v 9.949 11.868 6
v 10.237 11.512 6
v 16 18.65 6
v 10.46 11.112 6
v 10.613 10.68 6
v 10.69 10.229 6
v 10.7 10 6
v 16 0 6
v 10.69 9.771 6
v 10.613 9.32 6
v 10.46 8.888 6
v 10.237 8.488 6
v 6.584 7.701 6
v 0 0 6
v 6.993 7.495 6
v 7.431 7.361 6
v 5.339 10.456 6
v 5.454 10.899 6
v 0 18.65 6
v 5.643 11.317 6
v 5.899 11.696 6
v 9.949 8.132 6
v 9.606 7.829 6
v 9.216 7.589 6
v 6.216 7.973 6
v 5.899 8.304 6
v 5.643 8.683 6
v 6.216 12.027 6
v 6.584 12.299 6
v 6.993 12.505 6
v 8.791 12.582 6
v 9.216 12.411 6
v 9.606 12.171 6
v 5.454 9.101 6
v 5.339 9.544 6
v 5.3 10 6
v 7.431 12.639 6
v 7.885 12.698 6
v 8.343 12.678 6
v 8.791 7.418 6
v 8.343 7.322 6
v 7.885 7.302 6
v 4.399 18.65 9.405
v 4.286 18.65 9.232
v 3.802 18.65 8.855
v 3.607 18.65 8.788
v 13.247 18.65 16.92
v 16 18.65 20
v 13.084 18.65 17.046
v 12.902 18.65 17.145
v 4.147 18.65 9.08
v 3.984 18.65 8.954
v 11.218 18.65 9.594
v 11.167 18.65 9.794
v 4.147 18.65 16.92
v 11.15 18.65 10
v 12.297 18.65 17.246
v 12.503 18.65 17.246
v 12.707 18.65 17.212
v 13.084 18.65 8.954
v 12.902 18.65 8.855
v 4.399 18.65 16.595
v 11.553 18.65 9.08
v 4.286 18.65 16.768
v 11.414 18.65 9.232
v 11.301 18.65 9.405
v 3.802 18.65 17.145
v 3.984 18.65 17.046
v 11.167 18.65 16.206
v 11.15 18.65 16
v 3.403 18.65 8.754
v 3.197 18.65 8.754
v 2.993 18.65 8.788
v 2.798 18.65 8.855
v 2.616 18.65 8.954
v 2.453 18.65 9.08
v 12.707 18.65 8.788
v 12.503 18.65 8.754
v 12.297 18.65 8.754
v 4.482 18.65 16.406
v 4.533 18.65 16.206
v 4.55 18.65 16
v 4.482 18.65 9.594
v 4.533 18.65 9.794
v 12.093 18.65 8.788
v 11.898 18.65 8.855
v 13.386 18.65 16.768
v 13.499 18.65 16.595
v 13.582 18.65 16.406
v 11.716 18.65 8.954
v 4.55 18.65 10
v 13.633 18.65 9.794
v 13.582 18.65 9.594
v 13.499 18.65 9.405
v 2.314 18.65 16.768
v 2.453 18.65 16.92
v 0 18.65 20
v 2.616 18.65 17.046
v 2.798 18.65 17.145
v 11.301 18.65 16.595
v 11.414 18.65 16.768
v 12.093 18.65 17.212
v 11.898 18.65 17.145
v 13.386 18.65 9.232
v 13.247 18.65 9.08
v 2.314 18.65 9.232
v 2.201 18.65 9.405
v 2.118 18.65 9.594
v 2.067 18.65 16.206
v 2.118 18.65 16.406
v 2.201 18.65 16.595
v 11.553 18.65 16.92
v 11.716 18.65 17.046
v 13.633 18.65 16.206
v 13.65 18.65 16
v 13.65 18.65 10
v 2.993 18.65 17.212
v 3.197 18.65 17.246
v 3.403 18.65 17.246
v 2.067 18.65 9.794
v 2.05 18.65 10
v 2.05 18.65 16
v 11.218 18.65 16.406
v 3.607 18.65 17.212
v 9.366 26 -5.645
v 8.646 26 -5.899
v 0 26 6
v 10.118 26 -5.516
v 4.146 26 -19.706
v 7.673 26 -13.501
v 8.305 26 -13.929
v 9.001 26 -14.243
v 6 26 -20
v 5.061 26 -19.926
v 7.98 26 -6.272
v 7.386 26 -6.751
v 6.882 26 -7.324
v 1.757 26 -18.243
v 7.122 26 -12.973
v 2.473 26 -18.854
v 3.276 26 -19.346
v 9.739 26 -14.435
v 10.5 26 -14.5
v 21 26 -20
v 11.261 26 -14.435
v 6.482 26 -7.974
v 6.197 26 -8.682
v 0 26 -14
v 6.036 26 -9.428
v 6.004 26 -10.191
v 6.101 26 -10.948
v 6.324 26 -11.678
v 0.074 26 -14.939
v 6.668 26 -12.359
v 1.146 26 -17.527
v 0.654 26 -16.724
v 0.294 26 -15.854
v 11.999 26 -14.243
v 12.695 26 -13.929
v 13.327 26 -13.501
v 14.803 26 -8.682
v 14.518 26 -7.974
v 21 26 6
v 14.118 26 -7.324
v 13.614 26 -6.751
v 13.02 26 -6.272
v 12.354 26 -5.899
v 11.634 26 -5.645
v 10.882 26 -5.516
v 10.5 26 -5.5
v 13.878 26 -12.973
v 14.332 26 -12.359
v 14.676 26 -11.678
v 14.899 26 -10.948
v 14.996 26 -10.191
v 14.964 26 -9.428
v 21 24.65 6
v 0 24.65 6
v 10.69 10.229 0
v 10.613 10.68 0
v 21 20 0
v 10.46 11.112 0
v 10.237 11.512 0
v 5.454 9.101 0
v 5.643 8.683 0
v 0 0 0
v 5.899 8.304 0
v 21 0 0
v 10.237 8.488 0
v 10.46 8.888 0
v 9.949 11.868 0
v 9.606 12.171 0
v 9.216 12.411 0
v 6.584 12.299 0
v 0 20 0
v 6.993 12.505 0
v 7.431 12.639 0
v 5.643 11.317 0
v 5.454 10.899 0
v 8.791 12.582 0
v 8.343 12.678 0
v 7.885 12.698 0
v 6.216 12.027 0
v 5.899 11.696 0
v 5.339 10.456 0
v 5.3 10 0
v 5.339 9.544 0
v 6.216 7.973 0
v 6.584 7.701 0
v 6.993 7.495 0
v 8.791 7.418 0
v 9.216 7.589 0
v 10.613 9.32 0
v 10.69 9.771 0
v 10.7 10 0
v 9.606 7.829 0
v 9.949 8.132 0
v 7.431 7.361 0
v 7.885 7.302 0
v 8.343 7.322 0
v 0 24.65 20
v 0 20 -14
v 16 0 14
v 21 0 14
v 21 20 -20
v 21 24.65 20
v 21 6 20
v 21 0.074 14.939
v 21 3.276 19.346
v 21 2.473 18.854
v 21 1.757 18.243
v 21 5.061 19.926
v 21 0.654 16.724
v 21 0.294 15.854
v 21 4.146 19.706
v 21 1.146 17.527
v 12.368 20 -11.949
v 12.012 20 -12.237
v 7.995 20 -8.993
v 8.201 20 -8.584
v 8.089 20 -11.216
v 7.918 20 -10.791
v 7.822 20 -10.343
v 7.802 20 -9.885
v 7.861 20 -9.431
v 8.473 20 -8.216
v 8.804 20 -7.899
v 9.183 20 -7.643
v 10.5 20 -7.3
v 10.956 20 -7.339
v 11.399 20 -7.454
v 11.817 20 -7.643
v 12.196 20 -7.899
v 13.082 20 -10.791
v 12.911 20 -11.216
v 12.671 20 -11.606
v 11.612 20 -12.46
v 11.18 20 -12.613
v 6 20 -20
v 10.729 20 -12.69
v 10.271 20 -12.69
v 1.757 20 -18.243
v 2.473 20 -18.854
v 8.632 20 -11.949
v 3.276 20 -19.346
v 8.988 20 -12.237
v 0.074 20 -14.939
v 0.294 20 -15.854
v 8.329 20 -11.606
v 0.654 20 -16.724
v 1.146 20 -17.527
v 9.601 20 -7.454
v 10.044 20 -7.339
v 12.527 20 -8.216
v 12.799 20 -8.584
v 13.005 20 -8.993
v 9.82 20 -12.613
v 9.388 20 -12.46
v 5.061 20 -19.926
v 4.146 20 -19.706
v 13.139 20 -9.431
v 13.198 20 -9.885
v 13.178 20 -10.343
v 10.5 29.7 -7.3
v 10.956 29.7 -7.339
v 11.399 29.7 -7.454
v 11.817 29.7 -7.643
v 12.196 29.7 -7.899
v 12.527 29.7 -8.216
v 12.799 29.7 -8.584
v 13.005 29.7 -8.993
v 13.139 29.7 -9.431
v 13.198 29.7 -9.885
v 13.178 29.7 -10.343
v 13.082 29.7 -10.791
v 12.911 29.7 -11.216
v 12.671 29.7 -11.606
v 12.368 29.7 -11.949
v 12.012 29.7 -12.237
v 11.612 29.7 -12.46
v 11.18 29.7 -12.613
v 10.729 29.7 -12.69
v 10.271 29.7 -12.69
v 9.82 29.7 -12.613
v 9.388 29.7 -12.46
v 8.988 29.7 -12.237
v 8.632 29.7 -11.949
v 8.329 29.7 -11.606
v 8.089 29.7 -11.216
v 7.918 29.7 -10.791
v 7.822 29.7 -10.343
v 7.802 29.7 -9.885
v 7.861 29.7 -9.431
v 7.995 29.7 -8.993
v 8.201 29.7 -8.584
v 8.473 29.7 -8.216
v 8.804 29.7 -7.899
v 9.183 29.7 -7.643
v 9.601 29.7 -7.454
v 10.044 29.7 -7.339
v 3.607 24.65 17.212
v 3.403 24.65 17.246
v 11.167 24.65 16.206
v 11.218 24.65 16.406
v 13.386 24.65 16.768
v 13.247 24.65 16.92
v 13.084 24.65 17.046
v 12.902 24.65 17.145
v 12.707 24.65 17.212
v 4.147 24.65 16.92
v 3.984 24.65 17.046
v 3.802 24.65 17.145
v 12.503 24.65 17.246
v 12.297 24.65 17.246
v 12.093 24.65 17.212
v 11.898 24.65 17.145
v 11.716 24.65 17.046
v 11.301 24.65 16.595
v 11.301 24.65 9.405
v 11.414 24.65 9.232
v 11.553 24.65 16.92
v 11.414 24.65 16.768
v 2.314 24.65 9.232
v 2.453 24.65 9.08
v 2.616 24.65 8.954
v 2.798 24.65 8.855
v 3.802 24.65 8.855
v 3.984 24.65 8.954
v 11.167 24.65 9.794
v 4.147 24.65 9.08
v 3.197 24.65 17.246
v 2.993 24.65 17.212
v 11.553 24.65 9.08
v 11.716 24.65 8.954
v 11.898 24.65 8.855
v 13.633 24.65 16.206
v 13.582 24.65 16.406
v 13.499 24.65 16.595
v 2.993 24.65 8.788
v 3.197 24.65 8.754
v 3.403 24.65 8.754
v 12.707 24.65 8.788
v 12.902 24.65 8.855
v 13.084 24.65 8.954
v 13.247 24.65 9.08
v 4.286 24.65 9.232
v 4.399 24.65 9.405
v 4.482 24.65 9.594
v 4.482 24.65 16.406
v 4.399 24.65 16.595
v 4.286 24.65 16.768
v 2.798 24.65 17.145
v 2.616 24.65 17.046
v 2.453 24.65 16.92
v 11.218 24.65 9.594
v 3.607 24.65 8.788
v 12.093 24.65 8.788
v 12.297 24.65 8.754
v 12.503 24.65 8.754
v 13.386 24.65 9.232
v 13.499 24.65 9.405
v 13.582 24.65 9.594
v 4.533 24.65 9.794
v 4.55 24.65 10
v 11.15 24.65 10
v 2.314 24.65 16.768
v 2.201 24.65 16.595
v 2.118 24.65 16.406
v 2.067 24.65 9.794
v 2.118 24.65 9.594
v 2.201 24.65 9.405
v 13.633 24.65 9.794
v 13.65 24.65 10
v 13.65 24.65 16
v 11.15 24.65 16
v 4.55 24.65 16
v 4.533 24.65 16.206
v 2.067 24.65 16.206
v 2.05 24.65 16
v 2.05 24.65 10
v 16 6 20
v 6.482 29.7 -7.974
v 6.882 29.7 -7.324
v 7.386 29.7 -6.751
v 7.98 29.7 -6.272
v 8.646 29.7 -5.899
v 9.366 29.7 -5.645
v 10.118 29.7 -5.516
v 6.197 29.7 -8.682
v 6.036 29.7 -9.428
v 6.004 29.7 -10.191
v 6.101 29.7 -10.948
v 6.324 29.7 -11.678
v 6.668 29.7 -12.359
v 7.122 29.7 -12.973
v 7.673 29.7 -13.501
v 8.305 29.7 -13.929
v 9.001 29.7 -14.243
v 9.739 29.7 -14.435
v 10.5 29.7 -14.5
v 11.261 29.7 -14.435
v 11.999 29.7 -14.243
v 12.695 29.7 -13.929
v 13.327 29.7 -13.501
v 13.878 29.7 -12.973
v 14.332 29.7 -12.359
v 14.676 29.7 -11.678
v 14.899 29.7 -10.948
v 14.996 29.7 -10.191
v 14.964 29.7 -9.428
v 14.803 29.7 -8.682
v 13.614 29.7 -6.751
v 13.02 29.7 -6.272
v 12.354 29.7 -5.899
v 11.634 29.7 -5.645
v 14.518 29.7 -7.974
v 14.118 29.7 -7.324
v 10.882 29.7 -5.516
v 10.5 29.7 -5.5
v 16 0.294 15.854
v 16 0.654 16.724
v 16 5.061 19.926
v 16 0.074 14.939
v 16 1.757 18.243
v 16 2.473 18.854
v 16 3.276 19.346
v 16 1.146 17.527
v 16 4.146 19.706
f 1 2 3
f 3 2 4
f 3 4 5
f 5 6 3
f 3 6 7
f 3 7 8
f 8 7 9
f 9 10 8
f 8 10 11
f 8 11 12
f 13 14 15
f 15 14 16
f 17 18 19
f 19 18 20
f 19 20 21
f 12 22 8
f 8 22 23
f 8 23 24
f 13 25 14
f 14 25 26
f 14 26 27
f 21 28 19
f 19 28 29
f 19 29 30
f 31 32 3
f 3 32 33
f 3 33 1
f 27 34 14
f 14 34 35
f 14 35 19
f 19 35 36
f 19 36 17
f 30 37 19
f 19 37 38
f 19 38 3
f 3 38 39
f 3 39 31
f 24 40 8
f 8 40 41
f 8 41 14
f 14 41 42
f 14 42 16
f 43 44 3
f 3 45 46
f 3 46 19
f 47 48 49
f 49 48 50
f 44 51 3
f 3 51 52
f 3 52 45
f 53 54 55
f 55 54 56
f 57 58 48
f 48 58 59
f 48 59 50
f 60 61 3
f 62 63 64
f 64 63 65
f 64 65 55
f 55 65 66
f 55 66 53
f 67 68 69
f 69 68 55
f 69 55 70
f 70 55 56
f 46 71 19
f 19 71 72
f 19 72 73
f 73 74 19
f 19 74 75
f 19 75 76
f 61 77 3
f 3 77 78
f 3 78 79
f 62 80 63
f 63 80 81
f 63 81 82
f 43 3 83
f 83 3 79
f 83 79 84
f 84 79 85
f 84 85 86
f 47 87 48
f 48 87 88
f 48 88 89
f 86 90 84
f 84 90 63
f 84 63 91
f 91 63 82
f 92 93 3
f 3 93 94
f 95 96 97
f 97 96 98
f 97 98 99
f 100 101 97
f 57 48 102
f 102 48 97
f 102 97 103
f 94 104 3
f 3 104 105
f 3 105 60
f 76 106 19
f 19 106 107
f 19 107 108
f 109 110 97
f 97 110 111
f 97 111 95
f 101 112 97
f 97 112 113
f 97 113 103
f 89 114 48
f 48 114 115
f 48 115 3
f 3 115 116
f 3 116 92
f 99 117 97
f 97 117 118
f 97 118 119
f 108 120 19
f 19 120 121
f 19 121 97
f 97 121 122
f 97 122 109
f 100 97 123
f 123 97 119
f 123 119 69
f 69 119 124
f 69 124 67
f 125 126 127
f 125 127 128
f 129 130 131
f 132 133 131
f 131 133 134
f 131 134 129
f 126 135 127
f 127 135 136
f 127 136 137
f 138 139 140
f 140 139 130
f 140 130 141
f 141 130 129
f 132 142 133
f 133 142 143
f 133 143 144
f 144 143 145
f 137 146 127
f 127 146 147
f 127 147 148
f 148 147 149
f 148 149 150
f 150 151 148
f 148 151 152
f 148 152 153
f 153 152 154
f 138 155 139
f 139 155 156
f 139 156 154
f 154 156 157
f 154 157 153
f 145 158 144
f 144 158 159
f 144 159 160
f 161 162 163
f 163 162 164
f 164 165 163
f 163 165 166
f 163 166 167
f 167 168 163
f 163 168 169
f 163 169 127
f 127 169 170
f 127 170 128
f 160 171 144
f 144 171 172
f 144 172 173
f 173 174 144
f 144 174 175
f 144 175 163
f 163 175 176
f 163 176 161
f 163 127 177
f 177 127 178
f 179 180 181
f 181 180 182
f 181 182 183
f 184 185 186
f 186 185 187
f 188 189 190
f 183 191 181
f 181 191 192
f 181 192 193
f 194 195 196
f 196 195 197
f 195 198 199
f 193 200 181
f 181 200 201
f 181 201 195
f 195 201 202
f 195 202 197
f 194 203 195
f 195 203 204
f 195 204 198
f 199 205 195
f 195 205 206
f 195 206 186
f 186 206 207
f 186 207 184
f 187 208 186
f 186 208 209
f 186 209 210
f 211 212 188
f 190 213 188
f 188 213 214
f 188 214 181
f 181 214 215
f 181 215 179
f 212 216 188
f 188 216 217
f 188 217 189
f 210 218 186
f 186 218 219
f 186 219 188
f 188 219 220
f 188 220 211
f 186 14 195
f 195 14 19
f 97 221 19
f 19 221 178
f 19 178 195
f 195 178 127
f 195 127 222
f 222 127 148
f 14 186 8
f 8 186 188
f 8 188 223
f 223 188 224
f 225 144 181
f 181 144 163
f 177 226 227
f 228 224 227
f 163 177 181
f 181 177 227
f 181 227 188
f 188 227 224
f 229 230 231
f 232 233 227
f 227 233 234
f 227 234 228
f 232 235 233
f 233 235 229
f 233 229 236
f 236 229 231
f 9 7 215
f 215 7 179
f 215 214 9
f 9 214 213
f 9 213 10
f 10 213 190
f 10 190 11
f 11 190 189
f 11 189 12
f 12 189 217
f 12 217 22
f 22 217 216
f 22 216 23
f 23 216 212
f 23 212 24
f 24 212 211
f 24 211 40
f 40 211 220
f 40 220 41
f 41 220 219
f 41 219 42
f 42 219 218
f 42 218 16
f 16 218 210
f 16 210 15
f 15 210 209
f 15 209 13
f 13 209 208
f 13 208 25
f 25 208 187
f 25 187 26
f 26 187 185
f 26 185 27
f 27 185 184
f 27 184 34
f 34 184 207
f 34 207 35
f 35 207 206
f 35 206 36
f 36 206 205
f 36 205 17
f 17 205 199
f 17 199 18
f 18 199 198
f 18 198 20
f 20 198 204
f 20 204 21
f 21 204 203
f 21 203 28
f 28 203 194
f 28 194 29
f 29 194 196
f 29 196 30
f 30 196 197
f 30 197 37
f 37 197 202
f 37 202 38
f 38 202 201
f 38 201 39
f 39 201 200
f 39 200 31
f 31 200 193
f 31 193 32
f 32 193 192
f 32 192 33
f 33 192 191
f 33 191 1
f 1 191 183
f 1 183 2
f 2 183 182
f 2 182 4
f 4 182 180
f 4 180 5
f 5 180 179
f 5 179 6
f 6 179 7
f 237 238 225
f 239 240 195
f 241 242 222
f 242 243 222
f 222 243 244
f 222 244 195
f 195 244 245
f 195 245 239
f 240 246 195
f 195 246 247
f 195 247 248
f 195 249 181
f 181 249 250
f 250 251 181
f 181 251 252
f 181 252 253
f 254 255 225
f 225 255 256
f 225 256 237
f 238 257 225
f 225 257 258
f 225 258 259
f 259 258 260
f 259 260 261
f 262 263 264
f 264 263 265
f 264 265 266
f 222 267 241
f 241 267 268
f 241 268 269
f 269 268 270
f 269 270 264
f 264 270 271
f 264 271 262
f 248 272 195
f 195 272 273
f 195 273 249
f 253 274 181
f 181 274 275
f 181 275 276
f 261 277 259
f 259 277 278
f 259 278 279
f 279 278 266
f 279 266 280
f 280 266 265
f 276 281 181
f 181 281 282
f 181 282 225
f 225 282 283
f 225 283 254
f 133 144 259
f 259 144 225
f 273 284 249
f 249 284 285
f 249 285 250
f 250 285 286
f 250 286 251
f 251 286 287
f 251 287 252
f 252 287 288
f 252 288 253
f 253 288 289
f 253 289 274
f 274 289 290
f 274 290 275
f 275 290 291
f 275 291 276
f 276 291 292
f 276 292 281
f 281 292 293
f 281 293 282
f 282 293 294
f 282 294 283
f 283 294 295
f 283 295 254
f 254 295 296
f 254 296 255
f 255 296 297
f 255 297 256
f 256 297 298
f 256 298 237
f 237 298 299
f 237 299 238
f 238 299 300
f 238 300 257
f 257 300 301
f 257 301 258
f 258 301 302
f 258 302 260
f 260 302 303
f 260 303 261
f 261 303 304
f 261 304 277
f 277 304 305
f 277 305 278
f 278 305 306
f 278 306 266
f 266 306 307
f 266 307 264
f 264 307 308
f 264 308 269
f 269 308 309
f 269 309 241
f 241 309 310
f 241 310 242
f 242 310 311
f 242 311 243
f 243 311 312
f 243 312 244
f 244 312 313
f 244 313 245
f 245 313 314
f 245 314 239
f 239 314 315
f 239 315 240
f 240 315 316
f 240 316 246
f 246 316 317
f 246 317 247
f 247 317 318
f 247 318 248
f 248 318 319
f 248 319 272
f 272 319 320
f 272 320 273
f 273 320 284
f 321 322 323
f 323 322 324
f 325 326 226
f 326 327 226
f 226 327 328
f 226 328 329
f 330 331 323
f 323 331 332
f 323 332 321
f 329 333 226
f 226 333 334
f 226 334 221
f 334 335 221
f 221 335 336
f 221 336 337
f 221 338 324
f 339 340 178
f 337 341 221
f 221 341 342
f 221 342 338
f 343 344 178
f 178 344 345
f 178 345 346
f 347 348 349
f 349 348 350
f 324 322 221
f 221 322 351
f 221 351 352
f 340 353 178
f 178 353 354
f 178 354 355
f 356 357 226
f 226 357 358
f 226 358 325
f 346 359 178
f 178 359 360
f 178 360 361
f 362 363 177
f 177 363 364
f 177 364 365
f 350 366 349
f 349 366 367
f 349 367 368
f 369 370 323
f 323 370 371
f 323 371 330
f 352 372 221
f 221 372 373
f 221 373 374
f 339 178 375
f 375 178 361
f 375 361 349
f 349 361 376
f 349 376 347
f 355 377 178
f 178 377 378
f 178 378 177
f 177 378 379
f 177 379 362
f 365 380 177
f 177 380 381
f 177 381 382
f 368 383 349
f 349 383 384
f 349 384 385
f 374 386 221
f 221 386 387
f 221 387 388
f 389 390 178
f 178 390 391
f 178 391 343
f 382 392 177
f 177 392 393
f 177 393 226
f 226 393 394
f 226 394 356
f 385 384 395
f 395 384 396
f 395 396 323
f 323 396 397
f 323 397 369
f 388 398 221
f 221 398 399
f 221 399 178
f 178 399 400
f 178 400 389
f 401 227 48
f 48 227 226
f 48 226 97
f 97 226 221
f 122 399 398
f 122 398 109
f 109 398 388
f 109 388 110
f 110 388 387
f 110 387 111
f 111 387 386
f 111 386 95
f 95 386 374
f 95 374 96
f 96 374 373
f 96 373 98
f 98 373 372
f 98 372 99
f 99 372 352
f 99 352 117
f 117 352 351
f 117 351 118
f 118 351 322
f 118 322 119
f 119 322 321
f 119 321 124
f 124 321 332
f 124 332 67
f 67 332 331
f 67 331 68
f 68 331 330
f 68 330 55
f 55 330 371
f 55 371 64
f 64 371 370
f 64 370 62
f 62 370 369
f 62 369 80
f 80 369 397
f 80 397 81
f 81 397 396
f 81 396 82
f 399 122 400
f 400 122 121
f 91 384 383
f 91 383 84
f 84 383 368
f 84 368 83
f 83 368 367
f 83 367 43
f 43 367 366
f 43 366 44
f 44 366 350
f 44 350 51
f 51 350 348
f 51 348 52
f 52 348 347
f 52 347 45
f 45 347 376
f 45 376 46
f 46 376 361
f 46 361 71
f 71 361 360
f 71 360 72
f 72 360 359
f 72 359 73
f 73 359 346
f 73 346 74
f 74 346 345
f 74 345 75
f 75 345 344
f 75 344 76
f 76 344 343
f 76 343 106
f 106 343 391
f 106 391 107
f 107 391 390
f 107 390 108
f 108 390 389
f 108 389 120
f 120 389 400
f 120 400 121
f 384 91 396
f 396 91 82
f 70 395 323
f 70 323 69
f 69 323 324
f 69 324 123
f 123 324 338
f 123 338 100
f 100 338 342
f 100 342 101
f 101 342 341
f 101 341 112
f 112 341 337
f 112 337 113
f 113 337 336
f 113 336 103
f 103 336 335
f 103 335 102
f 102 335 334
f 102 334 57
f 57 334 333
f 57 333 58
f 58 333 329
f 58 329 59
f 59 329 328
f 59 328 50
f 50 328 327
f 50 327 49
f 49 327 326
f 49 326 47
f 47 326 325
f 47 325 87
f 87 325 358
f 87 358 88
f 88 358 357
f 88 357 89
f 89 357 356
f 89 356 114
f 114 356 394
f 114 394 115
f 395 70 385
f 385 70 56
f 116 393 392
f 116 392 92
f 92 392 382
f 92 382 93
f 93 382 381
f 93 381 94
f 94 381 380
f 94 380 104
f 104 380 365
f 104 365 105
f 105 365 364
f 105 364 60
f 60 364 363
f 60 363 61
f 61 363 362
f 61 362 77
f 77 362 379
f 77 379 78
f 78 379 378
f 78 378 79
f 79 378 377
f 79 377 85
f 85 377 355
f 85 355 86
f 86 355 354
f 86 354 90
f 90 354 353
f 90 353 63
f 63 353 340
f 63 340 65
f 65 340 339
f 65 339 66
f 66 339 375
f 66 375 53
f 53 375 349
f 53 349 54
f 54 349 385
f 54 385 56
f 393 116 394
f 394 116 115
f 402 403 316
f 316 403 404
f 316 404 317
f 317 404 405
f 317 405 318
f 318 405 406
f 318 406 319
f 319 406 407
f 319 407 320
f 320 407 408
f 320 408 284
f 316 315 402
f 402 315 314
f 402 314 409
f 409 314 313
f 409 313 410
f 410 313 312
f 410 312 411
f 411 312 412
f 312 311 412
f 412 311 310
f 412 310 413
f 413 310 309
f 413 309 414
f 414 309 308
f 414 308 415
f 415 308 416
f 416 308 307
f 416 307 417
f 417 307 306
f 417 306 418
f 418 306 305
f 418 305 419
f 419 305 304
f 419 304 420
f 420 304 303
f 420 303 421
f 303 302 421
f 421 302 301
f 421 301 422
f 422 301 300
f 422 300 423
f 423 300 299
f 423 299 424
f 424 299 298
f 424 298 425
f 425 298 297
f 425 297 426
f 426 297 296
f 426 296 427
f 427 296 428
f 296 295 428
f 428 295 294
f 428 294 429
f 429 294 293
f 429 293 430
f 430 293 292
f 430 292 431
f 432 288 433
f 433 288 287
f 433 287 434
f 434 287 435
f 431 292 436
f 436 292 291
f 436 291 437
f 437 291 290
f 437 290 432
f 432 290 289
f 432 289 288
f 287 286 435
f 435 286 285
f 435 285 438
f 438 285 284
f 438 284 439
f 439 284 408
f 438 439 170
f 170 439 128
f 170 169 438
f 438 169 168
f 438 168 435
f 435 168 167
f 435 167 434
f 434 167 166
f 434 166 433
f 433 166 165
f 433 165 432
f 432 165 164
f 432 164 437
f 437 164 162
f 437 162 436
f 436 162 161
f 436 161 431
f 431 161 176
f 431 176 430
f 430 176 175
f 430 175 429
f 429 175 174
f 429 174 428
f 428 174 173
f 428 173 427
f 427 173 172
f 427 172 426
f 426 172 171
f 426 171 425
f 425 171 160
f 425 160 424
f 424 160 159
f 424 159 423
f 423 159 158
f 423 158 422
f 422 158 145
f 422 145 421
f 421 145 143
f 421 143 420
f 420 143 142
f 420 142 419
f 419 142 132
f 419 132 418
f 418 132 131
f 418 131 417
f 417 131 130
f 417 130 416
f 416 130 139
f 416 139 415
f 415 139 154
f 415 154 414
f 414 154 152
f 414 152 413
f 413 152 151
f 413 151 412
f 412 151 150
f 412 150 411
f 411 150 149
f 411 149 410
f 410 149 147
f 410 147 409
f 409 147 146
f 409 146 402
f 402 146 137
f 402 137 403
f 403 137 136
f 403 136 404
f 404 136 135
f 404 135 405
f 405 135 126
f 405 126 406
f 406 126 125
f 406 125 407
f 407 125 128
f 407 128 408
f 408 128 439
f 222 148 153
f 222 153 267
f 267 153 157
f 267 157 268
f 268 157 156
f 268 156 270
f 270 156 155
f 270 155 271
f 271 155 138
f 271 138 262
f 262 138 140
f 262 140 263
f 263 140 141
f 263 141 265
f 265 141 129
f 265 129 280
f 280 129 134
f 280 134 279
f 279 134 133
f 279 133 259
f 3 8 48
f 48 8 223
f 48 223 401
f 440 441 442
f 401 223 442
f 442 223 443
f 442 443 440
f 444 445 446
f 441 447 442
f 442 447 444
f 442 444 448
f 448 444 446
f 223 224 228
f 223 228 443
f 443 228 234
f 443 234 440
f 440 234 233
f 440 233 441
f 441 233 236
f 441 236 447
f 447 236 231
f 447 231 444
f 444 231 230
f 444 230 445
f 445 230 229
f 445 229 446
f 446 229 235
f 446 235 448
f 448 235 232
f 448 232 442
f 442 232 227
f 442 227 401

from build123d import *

# Parameters (mm, degrees)
SZKIC1_W                    = 21
SZKIC1_H                    = 6
SZKIC1_H_2                  = 20
SZKIC1_R                    = 2.7
DODANIE_WYCI_GNI_CIE1_DEPTH = 6
SZKIC2_W                    = 21
SZKIC2_H                    = 6
DODANIE_WYCI_GNI_CIE2_DEPTH = 20
SZKIC3_R                    = 2.7
WYTNIJ_WYCI_GNI_CIE1_DEPTH  = 9
SZKIC4_W                    = 21
SZKIC4_H                    = 6
DODANIE_WYCI_GNI_CIE3_DEPTH = 14
WYTNIJ_WYCI_GNI_CIE2_DEPTH  = 40.05
SZKIC6_R                    = 4.5
SZKIC6_R_2                  = 2.7
DODANIE_WYCI_GNI_CIE5_DEPTH = 3.7
ZAOKR_GLENIE2_R             = 6
SZKIC7_W                    = 5
SZKIC7_H                    = 18.65
DODANIE_WYCI_GNI_CIE6_DEPTH = 14
ZAOKR_GLENIE3_R             = 6


with BuildPart() as part:
    # Szkic1 → Dodanie-wyciągnięcie1 (new body)
    with BuildSketch(Plane.XY):
        with Locations((10.5, 23)):
            Rectangle(SZKIC1_W, SZKIC1_H)
        with Locations((10.5, 10)):
            Rectangle(SZKIC1_W, SZKIC1_H_2)
        with Locations((8, 10)):
            Circle(SZKIC1_R, mode=Mode.SUBTRACT)
    extrude(amount=DODANIE_WYCI_GNI_CIE1_DEPTH)

    # Szkic2 → Dodanie-wyciągnięcie2 (add)
    with BuildSketch(Plane(origin=(0, 0, 0), x_dir=(-1, 0, 0), z_dir=(0, 0, -1))):
        with Locations((-10.5, 23)):
            Rectangle(SZKIC2_W, SZKIC2_H)
    extrude(amount=DODANIE_WYCI_GNI_CIE2_DEPTH)

    # Szkic3 → Wytnij-wyciągnięcie1 (cut)
    with BuildSketch(Plane(origin=(0, 26, 0), x_dir=(1, 0, 0), z_dir=(0, 1, 0))):
        with Locations((10.5, 10)):
            Circle(SZKIC3_R)
    extrude(amount=-WYTNIJ_WYCI_GNI_CIE1_DEPTH, mode=Mode.SUBTRACT)

    # Szkic4 → Dodanie-wyciągnięcie3 (add)
    with BuildSketch(Plane.XY.offset(6)):
        with Locations((10.5, 21.65)):
            Rectangle(SZKIC4_W, SZKIC4_H)
    extrude(amount=DODANIE_WYCI_GNI_CIE3_DEPTH)

    # Szkic5 → Wytnij-wyciągnięcie2 (cut)
    with BuildSketch(Plane(origin=(0, 24.65, 0), x_dir=(1, 0, 0), z_dir=(0, 1, 0))):
        with BuildLine():
            Line((2.05, -16), (2.05, -10))
            ThreePointArc((2.05, -10), (3.3, -8.75), (4.55, -10))
            Line((4.55, -10), (4.55, -16))
            ThreePointArc((4.55, -16), (3.3, -17.25), (2.05, -16))
        make_face()
        with BuildLine():
            Line((13.65, -16), (13.65, -10))
            ThreePointArc((13.65, -10), (12.4, -8.75), (11.15, -10))
            Line((11.15, -10), (11.15, -16))
            ThreePointArc((11.15, -16), (12.4, -17.25), (13.65, -16))
        make_face()
    extrude(amount=-WYTNIJ_WYCI_GNI_CIE2_DEPTH, mode=Mode.SUBTRACT)

    # Szkic6 → Dodanie-wyciągnięcie5 (add)
    with BuildSketch(Plane(origin=(0, 26, 0), x_dir=(1, 0, 0), z_dir=(0, 1, 0))):
        with Locations((10.5, 10)):
            Circle(SZKIC6_R)
        with Locations((10.5, 10)):
            Circle(SZKIC6_R_2, mode=Mode.SUBTRACT)
    extrude(amount=DODANIE_WYCI_GNI_CIE5_DEPTH)

    # Zaokrąglenie2
    zaokr_glenie2_edges = [part.edges().sort_by_distance(p)[0] for p in [
        (0, 23, -20),
    ]]
    fillet(zaokr_glenie2_edges, radius=ZAOKR_GLENIE2_R)

    # Szkic7 → Dodanie-wyciągnięcie6 (add)
    with BuildSketch(Plane.XY.offset(6)):
        with Locations((18.5, 9.325)):
            Rectangle(SZKIC7_W, SZKIC7_H)
    extrude(amount=DODANIE_WYCI_GNI_CIE6_DEPTH)

    # Zaokrąglenie3
    zaokr_glenie3_edges = [part.edges().sort_by_distance(p)[0] for p in [
        (18.5, 0, 20),
    ]]
    fillet(zaokr_glenie3_edges, radius=ZAOKR_GLENIE3_R)


solid = part.part
